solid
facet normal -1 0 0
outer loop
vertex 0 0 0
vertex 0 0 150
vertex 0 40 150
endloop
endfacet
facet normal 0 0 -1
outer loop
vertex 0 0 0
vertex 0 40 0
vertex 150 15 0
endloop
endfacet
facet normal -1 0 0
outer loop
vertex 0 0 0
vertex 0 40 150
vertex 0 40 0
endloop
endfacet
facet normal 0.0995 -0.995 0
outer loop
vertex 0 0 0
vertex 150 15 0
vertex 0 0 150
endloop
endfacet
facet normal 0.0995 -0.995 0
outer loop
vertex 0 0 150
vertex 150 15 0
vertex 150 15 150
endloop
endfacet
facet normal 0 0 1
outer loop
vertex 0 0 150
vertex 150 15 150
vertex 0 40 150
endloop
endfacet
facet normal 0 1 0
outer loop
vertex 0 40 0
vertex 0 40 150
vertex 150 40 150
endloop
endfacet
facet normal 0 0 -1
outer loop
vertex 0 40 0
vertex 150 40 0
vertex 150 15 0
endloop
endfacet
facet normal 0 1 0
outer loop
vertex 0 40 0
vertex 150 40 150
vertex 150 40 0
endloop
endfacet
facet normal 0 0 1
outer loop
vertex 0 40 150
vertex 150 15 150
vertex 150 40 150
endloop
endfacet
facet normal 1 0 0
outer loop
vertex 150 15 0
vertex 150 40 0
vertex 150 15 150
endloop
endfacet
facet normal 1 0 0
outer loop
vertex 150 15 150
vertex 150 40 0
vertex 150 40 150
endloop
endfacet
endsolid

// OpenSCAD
// arm rest for the desk
// 20.09.2025 Sebastian Weigl
 
// set the fregment sizes
$fn = $preview ? 48 : 64;

 linear_extrude(height=150, scale=[1,1], slices=0, twist=0)
 polygon(points=[[0,0],[0,40],[150,40],[150,15],[0,0]]);
